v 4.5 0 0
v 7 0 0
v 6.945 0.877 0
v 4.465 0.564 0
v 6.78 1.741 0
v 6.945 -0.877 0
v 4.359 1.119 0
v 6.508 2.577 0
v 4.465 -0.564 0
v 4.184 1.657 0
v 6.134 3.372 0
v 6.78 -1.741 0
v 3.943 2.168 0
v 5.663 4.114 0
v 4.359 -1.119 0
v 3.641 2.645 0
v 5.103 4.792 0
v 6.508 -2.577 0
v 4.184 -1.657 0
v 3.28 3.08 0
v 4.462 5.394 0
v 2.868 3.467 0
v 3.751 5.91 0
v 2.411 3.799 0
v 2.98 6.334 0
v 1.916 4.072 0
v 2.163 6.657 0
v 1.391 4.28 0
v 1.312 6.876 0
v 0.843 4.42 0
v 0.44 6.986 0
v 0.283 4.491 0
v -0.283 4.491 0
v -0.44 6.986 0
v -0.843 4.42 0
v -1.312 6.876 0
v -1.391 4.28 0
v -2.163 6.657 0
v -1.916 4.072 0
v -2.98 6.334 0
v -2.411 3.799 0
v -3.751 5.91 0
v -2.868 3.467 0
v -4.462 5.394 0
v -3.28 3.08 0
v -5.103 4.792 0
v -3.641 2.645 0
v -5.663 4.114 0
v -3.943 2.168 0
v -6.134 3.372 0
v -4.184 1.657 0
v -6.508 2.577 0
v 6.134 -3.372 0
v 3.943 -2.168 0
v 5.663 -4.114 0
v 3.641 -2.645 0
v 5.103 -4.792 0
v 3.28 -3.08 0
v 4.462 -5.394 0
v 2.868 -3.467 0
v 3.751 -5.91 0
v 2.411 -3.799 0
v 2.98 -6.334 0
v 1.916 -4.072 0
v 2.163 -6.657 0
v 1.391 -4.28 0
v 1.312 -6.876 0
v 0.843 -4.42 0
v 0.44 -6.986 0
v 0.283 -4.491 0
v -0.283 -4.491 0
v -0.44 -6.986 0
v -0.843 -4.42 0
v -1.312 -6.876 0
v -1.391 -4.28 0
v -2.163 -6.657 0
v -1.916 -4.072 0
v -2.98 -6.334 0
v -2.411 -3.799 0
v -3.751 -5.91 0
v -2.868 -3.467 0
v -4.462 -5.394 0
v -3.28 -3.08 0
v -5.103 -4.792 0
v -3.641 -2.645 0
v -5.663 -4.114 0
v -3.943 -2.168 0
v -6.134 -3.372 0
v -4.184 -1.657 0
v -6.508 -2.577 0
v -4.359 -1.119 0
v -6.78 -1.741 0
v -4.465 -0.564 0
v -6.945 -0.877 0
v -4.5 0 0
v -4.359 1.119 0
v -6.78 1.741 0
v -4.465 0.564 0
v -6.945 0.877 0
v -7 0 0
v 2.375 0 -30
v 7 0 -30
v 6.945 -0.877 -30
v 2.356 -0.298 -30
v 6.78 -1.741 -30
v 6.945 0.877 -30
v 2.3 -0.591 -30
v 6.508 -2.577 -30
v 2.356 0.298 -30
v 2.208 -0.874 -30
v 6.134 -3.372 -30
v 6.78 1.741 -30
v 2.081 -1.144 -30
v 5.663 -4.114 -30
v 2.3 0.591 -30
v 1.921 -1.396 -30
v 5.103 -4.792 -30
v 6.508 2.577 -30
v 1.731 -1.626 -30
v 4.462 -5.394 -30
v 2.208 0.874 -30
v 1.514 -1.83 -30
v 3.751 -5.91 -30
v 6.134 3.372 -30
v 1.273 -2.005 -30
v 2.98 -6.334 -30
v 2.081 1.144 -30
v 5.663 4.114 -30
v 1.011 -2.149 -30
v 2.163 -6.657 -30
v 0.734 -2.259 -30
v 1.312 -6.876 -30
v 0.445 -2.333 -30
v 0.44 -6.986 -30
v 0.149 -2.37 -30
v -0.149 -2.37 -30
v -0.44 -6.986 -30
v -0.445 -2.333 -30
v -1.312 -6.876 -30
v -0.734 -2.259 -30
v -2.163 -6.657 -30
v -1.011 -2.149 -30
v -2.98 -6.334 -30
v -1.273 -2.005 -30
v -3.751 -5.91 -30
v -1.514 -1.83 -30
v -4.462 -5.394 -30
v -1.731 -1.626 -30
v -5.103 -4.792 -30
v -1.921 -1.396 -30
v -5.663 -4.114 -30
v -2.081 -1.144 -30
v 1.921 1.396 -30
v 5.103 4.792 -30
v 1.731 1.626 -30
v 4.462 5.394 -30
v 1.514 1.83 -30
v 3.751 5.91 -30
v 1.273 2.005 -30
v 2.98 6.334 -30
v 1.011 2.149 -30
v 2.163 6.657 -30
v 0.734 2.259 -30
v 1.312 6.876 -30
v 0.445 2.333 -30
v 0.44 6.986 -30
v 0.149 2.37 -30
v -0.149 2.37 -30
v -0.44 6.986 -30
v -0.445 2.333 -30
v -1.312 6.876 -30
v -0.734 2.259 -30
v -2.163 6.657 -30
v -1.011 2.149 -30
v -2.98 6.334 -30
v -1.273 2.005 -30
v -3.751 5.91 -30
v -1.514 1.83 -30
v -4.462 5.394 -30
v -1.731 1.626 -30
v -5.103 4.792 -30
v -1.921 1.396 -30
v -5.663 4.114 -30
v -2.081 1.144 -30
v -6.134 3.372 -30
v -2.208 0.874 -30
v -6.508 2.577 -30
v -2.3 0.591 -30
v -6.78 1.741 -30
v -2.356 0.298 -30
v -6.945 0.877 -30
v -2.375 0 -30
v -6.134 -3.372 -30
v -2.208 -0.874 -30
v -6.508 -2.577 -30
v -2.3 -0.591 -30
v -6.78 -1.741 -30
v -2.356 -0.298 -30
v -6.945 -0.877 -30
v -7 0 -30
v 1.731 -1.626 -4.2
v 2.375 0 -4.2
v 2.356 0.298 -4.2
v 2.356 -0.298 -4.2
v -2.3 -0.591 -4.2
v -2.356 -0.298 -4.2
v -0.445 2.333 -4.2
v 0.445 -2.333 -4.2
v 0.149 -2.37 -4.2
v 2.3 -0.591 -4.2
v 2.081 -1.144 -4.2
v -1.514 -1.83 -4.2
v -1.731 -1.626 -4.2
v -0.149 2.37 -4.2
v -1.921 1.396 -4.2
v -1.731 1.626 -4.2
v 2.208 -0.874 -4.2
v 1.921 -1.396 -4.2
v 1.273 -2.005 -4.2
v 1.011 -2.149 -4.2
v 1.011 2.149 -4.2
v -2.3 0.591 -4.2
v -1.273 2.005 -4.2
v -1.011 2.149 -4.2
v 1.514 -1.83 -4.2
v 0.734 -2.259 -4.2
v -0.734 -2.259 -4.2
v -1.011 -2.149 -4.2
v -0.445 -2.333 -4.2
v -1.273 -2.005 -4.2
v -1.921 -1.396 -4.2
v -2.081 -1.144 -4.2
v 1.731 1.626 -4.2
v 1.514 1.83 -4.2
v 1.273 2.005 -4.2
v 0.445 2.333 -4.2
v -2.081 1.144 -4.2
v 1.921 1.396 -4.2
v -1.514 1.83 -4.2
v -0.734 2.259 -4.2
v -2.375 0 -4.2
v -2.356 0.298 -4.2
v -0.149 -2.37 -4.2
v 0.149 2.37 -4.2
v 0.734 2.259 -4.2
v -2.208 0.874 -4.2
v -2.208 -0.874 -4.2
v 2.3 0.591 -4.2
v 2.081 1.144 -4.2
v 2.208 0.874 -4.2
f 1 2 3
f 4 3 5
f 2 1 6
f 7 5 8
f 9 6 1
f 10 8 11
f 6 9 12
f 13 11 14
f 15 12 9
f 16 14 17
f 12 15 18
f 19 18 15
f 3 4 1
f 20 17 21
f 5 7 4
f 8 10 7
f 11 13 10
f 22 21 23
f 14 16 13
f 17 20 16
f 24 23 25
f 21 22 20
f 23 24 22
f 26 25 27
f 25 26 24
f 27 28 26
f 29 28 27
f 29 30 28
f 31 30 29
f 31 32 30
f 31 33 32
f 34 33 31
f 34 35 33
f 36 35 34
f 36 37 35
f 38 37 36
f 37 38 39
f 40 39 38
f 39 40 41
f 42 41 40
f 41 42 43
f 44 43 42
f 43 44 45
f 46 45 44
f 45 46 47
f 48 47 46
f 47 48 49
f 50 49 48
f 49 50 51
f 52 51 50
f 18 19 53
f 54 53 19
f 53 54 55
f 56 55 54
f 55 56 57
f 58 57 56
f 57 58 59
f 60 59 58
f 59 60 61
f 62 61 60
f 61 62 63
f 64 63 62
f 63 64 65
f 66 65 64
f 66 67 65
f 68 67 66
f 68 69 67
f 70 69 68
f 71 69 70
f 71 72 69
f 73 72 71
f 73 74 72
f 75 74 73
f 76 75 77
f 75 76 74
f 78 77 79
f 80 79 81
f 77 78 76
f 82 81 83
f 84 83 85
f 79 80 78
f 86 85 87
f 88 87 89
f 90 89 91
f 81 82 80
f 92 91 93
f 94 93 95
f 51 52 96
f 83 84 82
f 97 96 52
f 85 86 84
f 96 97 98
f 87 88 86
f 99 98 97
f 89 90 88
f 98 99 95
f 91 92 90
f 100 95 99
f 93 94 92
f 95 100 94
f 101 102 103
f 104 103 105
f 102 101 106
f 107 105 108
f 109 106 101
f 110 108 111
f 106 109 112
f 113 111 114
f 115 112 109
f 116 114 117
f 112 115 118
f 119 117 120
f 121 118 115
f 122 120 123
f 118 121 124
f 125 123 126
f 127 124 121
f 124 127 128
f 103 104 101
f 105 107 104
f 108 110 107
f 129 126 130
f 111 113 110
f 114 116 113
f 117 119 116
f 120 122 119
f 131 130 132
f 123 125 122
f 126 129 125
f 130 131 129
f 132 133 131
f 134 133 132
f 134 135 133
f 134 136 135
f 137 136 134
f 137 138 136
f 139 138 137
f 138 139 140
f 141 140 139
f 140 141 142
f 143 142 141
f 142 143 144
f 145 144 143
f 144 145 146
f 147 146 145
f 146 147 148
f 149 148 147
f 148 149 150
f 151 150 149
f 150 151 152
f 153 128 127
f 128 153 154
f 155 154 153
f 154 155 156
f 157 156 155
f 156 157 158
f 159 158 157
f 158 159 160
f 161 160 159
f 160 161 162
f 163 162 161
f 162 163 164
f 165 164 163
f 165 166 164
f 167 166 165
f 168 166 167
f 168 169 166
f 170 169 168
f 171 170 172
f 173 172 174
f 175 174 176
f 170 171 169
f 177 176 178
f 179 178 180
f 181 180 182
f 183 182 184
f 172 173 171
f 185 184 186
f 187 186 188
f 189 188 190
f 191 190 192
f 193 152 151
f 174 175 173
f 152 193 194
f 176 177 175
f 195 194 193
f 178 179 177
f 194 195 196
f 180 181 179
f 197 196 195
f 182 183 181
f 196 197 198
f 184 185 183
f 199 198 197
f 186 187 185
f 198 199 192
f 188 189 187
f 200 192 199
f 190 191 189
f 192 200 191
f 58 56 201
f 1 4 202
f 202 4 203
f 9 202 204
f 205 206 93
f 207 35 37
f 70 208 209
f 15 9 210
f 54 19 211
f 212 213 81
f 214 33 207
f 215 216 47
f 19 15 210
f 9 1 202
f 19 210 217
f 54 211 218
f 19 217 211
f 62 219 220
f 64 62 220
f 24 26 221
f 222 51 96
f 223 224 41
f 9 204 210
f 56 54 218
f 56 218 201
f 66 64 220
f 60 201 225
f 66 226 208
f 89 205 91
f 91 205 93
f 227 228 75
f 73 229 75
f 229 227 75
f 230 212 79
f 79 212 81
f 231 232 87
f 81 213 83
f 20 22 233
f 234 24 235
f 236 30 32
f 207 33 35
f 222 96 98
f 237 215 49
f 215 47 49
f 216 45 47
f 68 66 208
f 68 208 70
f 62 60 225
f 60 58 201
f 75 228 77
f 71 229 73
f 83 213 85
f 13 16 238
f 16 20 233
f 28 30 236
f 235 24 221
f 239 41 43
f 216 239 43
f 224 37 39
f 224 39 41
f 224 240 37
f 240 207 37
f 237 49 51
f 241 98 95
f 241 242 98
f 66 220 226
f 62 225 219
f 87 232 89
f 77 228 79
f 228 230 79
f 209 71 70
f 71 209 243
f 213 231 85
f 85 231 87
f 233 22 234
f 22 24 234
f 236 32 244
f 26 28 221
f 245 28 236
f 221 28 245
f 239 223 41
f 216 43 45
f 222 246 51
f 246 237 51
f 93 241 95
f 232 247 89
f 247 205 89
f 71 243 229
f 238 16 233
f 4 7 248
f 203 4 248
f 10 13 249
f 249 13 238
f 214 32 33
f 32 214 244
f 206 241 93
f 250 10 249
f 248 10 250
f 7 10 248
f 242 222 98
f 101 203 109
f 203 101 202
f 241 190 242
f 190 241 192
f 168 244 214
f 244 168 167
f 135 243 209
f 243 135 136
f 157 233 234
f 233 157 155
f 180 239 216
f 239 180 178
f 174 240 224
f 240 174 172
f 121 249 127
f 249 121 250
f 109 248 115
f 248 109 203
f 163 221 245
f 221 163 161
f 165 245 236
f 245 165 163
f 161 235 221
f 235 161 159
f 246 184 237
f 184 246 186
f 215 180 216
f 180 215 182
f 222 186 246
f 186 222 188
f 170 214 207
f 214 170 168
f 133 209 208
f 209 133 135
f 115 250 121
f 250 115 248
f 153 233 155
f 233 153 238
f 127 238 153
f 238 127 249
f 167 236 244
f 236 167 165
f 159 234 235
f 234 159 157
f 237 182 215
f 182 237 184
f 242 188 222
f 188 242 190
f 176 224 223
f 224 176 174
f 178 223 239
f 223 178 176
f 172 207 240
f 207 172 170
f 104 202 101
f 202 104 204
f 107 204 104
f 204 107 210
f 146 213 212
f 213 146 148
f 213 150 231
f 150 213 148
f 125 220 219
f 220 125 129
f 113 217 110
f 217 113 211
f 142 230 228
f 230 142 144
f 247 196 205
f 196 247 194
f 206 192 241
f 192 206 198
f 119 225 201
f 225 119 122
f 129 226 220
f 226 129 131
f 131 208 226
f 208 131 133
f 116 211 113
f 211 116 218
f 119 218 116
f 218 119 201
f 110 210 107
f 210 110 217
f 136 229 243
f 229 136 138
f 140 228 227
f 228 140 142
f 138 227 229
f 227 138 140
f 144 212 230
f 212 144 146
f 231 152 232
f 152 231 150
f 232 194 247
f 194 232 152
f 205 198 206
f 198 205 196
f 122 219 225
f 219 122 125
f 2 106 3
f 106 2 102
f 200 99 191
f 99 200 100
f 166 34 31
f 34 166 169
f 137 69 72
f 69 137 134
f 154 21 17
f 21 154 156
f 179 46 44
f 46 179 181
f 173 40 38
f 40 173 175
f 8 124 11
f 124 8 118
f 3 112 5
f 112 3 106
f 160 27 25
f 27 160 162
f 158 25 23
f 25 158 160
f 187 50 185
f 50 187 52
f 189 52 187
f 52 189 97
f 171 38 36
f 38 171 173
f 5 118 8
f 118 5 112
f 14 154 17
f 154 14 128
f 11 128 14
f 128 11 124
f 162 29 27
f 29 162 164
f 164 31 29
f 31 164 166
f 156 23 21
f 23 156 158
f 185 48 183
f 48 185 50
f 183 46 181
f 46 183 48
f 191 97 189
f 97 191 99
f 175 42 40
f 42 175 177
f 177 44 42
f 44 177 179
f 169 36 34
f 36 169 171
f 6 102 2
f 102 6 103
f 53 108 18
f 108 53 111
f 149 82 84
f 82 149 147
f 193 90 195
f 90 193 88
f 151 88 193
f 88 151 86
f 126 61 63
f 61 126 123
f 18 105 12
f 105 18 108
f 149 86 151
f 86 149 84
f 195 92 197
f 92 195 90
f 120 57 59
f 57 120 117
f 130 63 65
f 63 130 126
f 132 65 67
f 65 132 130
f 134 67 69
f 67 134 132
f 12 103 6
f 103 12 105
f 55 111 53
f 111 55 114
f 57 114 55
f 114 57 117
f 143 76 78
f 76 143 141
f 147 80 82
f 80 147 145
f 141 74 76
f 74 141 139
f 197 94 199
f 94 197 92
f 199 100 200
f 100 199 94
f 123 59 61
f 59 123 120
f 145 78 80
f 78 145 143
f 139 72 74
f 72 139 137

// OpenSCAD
$fn = 50;


difference() {
	union() {
		translate(v = [0, 0, -30.0000000000]) {
			cylinder(h = 30, r = 7.0000000000);
		}
		cylinder(h = 0, r = 16.0000000000);
	}
	union() {
		translate(v = [0, 0, 0]) {
			rotate(a = [0, 0, 0]) {
				difference() {
					union() {
						#translate(v = [0, 0, -30.0000000000]) {
							cylinder(h = 30, r = 2.2500000000);
						}
						#translate(v = [0, 0, -4.2000000000]) {
							cylinder(h = 4.2000000000, r = 7.0000000000, r1 = 2.3750000000, r2 = 4.5000000000);
						}
						#translate(v = [0, 0, -30.0000000000]) {
							cylinder(h = 30, r = 2.3750000000);
						}
						#translate(v = [0, 0, -30.0000000000]) {
							cylinder(h = 30, r = 2.2500000000);
						}
					}
					union();
				}
			}
		}
	}
}
